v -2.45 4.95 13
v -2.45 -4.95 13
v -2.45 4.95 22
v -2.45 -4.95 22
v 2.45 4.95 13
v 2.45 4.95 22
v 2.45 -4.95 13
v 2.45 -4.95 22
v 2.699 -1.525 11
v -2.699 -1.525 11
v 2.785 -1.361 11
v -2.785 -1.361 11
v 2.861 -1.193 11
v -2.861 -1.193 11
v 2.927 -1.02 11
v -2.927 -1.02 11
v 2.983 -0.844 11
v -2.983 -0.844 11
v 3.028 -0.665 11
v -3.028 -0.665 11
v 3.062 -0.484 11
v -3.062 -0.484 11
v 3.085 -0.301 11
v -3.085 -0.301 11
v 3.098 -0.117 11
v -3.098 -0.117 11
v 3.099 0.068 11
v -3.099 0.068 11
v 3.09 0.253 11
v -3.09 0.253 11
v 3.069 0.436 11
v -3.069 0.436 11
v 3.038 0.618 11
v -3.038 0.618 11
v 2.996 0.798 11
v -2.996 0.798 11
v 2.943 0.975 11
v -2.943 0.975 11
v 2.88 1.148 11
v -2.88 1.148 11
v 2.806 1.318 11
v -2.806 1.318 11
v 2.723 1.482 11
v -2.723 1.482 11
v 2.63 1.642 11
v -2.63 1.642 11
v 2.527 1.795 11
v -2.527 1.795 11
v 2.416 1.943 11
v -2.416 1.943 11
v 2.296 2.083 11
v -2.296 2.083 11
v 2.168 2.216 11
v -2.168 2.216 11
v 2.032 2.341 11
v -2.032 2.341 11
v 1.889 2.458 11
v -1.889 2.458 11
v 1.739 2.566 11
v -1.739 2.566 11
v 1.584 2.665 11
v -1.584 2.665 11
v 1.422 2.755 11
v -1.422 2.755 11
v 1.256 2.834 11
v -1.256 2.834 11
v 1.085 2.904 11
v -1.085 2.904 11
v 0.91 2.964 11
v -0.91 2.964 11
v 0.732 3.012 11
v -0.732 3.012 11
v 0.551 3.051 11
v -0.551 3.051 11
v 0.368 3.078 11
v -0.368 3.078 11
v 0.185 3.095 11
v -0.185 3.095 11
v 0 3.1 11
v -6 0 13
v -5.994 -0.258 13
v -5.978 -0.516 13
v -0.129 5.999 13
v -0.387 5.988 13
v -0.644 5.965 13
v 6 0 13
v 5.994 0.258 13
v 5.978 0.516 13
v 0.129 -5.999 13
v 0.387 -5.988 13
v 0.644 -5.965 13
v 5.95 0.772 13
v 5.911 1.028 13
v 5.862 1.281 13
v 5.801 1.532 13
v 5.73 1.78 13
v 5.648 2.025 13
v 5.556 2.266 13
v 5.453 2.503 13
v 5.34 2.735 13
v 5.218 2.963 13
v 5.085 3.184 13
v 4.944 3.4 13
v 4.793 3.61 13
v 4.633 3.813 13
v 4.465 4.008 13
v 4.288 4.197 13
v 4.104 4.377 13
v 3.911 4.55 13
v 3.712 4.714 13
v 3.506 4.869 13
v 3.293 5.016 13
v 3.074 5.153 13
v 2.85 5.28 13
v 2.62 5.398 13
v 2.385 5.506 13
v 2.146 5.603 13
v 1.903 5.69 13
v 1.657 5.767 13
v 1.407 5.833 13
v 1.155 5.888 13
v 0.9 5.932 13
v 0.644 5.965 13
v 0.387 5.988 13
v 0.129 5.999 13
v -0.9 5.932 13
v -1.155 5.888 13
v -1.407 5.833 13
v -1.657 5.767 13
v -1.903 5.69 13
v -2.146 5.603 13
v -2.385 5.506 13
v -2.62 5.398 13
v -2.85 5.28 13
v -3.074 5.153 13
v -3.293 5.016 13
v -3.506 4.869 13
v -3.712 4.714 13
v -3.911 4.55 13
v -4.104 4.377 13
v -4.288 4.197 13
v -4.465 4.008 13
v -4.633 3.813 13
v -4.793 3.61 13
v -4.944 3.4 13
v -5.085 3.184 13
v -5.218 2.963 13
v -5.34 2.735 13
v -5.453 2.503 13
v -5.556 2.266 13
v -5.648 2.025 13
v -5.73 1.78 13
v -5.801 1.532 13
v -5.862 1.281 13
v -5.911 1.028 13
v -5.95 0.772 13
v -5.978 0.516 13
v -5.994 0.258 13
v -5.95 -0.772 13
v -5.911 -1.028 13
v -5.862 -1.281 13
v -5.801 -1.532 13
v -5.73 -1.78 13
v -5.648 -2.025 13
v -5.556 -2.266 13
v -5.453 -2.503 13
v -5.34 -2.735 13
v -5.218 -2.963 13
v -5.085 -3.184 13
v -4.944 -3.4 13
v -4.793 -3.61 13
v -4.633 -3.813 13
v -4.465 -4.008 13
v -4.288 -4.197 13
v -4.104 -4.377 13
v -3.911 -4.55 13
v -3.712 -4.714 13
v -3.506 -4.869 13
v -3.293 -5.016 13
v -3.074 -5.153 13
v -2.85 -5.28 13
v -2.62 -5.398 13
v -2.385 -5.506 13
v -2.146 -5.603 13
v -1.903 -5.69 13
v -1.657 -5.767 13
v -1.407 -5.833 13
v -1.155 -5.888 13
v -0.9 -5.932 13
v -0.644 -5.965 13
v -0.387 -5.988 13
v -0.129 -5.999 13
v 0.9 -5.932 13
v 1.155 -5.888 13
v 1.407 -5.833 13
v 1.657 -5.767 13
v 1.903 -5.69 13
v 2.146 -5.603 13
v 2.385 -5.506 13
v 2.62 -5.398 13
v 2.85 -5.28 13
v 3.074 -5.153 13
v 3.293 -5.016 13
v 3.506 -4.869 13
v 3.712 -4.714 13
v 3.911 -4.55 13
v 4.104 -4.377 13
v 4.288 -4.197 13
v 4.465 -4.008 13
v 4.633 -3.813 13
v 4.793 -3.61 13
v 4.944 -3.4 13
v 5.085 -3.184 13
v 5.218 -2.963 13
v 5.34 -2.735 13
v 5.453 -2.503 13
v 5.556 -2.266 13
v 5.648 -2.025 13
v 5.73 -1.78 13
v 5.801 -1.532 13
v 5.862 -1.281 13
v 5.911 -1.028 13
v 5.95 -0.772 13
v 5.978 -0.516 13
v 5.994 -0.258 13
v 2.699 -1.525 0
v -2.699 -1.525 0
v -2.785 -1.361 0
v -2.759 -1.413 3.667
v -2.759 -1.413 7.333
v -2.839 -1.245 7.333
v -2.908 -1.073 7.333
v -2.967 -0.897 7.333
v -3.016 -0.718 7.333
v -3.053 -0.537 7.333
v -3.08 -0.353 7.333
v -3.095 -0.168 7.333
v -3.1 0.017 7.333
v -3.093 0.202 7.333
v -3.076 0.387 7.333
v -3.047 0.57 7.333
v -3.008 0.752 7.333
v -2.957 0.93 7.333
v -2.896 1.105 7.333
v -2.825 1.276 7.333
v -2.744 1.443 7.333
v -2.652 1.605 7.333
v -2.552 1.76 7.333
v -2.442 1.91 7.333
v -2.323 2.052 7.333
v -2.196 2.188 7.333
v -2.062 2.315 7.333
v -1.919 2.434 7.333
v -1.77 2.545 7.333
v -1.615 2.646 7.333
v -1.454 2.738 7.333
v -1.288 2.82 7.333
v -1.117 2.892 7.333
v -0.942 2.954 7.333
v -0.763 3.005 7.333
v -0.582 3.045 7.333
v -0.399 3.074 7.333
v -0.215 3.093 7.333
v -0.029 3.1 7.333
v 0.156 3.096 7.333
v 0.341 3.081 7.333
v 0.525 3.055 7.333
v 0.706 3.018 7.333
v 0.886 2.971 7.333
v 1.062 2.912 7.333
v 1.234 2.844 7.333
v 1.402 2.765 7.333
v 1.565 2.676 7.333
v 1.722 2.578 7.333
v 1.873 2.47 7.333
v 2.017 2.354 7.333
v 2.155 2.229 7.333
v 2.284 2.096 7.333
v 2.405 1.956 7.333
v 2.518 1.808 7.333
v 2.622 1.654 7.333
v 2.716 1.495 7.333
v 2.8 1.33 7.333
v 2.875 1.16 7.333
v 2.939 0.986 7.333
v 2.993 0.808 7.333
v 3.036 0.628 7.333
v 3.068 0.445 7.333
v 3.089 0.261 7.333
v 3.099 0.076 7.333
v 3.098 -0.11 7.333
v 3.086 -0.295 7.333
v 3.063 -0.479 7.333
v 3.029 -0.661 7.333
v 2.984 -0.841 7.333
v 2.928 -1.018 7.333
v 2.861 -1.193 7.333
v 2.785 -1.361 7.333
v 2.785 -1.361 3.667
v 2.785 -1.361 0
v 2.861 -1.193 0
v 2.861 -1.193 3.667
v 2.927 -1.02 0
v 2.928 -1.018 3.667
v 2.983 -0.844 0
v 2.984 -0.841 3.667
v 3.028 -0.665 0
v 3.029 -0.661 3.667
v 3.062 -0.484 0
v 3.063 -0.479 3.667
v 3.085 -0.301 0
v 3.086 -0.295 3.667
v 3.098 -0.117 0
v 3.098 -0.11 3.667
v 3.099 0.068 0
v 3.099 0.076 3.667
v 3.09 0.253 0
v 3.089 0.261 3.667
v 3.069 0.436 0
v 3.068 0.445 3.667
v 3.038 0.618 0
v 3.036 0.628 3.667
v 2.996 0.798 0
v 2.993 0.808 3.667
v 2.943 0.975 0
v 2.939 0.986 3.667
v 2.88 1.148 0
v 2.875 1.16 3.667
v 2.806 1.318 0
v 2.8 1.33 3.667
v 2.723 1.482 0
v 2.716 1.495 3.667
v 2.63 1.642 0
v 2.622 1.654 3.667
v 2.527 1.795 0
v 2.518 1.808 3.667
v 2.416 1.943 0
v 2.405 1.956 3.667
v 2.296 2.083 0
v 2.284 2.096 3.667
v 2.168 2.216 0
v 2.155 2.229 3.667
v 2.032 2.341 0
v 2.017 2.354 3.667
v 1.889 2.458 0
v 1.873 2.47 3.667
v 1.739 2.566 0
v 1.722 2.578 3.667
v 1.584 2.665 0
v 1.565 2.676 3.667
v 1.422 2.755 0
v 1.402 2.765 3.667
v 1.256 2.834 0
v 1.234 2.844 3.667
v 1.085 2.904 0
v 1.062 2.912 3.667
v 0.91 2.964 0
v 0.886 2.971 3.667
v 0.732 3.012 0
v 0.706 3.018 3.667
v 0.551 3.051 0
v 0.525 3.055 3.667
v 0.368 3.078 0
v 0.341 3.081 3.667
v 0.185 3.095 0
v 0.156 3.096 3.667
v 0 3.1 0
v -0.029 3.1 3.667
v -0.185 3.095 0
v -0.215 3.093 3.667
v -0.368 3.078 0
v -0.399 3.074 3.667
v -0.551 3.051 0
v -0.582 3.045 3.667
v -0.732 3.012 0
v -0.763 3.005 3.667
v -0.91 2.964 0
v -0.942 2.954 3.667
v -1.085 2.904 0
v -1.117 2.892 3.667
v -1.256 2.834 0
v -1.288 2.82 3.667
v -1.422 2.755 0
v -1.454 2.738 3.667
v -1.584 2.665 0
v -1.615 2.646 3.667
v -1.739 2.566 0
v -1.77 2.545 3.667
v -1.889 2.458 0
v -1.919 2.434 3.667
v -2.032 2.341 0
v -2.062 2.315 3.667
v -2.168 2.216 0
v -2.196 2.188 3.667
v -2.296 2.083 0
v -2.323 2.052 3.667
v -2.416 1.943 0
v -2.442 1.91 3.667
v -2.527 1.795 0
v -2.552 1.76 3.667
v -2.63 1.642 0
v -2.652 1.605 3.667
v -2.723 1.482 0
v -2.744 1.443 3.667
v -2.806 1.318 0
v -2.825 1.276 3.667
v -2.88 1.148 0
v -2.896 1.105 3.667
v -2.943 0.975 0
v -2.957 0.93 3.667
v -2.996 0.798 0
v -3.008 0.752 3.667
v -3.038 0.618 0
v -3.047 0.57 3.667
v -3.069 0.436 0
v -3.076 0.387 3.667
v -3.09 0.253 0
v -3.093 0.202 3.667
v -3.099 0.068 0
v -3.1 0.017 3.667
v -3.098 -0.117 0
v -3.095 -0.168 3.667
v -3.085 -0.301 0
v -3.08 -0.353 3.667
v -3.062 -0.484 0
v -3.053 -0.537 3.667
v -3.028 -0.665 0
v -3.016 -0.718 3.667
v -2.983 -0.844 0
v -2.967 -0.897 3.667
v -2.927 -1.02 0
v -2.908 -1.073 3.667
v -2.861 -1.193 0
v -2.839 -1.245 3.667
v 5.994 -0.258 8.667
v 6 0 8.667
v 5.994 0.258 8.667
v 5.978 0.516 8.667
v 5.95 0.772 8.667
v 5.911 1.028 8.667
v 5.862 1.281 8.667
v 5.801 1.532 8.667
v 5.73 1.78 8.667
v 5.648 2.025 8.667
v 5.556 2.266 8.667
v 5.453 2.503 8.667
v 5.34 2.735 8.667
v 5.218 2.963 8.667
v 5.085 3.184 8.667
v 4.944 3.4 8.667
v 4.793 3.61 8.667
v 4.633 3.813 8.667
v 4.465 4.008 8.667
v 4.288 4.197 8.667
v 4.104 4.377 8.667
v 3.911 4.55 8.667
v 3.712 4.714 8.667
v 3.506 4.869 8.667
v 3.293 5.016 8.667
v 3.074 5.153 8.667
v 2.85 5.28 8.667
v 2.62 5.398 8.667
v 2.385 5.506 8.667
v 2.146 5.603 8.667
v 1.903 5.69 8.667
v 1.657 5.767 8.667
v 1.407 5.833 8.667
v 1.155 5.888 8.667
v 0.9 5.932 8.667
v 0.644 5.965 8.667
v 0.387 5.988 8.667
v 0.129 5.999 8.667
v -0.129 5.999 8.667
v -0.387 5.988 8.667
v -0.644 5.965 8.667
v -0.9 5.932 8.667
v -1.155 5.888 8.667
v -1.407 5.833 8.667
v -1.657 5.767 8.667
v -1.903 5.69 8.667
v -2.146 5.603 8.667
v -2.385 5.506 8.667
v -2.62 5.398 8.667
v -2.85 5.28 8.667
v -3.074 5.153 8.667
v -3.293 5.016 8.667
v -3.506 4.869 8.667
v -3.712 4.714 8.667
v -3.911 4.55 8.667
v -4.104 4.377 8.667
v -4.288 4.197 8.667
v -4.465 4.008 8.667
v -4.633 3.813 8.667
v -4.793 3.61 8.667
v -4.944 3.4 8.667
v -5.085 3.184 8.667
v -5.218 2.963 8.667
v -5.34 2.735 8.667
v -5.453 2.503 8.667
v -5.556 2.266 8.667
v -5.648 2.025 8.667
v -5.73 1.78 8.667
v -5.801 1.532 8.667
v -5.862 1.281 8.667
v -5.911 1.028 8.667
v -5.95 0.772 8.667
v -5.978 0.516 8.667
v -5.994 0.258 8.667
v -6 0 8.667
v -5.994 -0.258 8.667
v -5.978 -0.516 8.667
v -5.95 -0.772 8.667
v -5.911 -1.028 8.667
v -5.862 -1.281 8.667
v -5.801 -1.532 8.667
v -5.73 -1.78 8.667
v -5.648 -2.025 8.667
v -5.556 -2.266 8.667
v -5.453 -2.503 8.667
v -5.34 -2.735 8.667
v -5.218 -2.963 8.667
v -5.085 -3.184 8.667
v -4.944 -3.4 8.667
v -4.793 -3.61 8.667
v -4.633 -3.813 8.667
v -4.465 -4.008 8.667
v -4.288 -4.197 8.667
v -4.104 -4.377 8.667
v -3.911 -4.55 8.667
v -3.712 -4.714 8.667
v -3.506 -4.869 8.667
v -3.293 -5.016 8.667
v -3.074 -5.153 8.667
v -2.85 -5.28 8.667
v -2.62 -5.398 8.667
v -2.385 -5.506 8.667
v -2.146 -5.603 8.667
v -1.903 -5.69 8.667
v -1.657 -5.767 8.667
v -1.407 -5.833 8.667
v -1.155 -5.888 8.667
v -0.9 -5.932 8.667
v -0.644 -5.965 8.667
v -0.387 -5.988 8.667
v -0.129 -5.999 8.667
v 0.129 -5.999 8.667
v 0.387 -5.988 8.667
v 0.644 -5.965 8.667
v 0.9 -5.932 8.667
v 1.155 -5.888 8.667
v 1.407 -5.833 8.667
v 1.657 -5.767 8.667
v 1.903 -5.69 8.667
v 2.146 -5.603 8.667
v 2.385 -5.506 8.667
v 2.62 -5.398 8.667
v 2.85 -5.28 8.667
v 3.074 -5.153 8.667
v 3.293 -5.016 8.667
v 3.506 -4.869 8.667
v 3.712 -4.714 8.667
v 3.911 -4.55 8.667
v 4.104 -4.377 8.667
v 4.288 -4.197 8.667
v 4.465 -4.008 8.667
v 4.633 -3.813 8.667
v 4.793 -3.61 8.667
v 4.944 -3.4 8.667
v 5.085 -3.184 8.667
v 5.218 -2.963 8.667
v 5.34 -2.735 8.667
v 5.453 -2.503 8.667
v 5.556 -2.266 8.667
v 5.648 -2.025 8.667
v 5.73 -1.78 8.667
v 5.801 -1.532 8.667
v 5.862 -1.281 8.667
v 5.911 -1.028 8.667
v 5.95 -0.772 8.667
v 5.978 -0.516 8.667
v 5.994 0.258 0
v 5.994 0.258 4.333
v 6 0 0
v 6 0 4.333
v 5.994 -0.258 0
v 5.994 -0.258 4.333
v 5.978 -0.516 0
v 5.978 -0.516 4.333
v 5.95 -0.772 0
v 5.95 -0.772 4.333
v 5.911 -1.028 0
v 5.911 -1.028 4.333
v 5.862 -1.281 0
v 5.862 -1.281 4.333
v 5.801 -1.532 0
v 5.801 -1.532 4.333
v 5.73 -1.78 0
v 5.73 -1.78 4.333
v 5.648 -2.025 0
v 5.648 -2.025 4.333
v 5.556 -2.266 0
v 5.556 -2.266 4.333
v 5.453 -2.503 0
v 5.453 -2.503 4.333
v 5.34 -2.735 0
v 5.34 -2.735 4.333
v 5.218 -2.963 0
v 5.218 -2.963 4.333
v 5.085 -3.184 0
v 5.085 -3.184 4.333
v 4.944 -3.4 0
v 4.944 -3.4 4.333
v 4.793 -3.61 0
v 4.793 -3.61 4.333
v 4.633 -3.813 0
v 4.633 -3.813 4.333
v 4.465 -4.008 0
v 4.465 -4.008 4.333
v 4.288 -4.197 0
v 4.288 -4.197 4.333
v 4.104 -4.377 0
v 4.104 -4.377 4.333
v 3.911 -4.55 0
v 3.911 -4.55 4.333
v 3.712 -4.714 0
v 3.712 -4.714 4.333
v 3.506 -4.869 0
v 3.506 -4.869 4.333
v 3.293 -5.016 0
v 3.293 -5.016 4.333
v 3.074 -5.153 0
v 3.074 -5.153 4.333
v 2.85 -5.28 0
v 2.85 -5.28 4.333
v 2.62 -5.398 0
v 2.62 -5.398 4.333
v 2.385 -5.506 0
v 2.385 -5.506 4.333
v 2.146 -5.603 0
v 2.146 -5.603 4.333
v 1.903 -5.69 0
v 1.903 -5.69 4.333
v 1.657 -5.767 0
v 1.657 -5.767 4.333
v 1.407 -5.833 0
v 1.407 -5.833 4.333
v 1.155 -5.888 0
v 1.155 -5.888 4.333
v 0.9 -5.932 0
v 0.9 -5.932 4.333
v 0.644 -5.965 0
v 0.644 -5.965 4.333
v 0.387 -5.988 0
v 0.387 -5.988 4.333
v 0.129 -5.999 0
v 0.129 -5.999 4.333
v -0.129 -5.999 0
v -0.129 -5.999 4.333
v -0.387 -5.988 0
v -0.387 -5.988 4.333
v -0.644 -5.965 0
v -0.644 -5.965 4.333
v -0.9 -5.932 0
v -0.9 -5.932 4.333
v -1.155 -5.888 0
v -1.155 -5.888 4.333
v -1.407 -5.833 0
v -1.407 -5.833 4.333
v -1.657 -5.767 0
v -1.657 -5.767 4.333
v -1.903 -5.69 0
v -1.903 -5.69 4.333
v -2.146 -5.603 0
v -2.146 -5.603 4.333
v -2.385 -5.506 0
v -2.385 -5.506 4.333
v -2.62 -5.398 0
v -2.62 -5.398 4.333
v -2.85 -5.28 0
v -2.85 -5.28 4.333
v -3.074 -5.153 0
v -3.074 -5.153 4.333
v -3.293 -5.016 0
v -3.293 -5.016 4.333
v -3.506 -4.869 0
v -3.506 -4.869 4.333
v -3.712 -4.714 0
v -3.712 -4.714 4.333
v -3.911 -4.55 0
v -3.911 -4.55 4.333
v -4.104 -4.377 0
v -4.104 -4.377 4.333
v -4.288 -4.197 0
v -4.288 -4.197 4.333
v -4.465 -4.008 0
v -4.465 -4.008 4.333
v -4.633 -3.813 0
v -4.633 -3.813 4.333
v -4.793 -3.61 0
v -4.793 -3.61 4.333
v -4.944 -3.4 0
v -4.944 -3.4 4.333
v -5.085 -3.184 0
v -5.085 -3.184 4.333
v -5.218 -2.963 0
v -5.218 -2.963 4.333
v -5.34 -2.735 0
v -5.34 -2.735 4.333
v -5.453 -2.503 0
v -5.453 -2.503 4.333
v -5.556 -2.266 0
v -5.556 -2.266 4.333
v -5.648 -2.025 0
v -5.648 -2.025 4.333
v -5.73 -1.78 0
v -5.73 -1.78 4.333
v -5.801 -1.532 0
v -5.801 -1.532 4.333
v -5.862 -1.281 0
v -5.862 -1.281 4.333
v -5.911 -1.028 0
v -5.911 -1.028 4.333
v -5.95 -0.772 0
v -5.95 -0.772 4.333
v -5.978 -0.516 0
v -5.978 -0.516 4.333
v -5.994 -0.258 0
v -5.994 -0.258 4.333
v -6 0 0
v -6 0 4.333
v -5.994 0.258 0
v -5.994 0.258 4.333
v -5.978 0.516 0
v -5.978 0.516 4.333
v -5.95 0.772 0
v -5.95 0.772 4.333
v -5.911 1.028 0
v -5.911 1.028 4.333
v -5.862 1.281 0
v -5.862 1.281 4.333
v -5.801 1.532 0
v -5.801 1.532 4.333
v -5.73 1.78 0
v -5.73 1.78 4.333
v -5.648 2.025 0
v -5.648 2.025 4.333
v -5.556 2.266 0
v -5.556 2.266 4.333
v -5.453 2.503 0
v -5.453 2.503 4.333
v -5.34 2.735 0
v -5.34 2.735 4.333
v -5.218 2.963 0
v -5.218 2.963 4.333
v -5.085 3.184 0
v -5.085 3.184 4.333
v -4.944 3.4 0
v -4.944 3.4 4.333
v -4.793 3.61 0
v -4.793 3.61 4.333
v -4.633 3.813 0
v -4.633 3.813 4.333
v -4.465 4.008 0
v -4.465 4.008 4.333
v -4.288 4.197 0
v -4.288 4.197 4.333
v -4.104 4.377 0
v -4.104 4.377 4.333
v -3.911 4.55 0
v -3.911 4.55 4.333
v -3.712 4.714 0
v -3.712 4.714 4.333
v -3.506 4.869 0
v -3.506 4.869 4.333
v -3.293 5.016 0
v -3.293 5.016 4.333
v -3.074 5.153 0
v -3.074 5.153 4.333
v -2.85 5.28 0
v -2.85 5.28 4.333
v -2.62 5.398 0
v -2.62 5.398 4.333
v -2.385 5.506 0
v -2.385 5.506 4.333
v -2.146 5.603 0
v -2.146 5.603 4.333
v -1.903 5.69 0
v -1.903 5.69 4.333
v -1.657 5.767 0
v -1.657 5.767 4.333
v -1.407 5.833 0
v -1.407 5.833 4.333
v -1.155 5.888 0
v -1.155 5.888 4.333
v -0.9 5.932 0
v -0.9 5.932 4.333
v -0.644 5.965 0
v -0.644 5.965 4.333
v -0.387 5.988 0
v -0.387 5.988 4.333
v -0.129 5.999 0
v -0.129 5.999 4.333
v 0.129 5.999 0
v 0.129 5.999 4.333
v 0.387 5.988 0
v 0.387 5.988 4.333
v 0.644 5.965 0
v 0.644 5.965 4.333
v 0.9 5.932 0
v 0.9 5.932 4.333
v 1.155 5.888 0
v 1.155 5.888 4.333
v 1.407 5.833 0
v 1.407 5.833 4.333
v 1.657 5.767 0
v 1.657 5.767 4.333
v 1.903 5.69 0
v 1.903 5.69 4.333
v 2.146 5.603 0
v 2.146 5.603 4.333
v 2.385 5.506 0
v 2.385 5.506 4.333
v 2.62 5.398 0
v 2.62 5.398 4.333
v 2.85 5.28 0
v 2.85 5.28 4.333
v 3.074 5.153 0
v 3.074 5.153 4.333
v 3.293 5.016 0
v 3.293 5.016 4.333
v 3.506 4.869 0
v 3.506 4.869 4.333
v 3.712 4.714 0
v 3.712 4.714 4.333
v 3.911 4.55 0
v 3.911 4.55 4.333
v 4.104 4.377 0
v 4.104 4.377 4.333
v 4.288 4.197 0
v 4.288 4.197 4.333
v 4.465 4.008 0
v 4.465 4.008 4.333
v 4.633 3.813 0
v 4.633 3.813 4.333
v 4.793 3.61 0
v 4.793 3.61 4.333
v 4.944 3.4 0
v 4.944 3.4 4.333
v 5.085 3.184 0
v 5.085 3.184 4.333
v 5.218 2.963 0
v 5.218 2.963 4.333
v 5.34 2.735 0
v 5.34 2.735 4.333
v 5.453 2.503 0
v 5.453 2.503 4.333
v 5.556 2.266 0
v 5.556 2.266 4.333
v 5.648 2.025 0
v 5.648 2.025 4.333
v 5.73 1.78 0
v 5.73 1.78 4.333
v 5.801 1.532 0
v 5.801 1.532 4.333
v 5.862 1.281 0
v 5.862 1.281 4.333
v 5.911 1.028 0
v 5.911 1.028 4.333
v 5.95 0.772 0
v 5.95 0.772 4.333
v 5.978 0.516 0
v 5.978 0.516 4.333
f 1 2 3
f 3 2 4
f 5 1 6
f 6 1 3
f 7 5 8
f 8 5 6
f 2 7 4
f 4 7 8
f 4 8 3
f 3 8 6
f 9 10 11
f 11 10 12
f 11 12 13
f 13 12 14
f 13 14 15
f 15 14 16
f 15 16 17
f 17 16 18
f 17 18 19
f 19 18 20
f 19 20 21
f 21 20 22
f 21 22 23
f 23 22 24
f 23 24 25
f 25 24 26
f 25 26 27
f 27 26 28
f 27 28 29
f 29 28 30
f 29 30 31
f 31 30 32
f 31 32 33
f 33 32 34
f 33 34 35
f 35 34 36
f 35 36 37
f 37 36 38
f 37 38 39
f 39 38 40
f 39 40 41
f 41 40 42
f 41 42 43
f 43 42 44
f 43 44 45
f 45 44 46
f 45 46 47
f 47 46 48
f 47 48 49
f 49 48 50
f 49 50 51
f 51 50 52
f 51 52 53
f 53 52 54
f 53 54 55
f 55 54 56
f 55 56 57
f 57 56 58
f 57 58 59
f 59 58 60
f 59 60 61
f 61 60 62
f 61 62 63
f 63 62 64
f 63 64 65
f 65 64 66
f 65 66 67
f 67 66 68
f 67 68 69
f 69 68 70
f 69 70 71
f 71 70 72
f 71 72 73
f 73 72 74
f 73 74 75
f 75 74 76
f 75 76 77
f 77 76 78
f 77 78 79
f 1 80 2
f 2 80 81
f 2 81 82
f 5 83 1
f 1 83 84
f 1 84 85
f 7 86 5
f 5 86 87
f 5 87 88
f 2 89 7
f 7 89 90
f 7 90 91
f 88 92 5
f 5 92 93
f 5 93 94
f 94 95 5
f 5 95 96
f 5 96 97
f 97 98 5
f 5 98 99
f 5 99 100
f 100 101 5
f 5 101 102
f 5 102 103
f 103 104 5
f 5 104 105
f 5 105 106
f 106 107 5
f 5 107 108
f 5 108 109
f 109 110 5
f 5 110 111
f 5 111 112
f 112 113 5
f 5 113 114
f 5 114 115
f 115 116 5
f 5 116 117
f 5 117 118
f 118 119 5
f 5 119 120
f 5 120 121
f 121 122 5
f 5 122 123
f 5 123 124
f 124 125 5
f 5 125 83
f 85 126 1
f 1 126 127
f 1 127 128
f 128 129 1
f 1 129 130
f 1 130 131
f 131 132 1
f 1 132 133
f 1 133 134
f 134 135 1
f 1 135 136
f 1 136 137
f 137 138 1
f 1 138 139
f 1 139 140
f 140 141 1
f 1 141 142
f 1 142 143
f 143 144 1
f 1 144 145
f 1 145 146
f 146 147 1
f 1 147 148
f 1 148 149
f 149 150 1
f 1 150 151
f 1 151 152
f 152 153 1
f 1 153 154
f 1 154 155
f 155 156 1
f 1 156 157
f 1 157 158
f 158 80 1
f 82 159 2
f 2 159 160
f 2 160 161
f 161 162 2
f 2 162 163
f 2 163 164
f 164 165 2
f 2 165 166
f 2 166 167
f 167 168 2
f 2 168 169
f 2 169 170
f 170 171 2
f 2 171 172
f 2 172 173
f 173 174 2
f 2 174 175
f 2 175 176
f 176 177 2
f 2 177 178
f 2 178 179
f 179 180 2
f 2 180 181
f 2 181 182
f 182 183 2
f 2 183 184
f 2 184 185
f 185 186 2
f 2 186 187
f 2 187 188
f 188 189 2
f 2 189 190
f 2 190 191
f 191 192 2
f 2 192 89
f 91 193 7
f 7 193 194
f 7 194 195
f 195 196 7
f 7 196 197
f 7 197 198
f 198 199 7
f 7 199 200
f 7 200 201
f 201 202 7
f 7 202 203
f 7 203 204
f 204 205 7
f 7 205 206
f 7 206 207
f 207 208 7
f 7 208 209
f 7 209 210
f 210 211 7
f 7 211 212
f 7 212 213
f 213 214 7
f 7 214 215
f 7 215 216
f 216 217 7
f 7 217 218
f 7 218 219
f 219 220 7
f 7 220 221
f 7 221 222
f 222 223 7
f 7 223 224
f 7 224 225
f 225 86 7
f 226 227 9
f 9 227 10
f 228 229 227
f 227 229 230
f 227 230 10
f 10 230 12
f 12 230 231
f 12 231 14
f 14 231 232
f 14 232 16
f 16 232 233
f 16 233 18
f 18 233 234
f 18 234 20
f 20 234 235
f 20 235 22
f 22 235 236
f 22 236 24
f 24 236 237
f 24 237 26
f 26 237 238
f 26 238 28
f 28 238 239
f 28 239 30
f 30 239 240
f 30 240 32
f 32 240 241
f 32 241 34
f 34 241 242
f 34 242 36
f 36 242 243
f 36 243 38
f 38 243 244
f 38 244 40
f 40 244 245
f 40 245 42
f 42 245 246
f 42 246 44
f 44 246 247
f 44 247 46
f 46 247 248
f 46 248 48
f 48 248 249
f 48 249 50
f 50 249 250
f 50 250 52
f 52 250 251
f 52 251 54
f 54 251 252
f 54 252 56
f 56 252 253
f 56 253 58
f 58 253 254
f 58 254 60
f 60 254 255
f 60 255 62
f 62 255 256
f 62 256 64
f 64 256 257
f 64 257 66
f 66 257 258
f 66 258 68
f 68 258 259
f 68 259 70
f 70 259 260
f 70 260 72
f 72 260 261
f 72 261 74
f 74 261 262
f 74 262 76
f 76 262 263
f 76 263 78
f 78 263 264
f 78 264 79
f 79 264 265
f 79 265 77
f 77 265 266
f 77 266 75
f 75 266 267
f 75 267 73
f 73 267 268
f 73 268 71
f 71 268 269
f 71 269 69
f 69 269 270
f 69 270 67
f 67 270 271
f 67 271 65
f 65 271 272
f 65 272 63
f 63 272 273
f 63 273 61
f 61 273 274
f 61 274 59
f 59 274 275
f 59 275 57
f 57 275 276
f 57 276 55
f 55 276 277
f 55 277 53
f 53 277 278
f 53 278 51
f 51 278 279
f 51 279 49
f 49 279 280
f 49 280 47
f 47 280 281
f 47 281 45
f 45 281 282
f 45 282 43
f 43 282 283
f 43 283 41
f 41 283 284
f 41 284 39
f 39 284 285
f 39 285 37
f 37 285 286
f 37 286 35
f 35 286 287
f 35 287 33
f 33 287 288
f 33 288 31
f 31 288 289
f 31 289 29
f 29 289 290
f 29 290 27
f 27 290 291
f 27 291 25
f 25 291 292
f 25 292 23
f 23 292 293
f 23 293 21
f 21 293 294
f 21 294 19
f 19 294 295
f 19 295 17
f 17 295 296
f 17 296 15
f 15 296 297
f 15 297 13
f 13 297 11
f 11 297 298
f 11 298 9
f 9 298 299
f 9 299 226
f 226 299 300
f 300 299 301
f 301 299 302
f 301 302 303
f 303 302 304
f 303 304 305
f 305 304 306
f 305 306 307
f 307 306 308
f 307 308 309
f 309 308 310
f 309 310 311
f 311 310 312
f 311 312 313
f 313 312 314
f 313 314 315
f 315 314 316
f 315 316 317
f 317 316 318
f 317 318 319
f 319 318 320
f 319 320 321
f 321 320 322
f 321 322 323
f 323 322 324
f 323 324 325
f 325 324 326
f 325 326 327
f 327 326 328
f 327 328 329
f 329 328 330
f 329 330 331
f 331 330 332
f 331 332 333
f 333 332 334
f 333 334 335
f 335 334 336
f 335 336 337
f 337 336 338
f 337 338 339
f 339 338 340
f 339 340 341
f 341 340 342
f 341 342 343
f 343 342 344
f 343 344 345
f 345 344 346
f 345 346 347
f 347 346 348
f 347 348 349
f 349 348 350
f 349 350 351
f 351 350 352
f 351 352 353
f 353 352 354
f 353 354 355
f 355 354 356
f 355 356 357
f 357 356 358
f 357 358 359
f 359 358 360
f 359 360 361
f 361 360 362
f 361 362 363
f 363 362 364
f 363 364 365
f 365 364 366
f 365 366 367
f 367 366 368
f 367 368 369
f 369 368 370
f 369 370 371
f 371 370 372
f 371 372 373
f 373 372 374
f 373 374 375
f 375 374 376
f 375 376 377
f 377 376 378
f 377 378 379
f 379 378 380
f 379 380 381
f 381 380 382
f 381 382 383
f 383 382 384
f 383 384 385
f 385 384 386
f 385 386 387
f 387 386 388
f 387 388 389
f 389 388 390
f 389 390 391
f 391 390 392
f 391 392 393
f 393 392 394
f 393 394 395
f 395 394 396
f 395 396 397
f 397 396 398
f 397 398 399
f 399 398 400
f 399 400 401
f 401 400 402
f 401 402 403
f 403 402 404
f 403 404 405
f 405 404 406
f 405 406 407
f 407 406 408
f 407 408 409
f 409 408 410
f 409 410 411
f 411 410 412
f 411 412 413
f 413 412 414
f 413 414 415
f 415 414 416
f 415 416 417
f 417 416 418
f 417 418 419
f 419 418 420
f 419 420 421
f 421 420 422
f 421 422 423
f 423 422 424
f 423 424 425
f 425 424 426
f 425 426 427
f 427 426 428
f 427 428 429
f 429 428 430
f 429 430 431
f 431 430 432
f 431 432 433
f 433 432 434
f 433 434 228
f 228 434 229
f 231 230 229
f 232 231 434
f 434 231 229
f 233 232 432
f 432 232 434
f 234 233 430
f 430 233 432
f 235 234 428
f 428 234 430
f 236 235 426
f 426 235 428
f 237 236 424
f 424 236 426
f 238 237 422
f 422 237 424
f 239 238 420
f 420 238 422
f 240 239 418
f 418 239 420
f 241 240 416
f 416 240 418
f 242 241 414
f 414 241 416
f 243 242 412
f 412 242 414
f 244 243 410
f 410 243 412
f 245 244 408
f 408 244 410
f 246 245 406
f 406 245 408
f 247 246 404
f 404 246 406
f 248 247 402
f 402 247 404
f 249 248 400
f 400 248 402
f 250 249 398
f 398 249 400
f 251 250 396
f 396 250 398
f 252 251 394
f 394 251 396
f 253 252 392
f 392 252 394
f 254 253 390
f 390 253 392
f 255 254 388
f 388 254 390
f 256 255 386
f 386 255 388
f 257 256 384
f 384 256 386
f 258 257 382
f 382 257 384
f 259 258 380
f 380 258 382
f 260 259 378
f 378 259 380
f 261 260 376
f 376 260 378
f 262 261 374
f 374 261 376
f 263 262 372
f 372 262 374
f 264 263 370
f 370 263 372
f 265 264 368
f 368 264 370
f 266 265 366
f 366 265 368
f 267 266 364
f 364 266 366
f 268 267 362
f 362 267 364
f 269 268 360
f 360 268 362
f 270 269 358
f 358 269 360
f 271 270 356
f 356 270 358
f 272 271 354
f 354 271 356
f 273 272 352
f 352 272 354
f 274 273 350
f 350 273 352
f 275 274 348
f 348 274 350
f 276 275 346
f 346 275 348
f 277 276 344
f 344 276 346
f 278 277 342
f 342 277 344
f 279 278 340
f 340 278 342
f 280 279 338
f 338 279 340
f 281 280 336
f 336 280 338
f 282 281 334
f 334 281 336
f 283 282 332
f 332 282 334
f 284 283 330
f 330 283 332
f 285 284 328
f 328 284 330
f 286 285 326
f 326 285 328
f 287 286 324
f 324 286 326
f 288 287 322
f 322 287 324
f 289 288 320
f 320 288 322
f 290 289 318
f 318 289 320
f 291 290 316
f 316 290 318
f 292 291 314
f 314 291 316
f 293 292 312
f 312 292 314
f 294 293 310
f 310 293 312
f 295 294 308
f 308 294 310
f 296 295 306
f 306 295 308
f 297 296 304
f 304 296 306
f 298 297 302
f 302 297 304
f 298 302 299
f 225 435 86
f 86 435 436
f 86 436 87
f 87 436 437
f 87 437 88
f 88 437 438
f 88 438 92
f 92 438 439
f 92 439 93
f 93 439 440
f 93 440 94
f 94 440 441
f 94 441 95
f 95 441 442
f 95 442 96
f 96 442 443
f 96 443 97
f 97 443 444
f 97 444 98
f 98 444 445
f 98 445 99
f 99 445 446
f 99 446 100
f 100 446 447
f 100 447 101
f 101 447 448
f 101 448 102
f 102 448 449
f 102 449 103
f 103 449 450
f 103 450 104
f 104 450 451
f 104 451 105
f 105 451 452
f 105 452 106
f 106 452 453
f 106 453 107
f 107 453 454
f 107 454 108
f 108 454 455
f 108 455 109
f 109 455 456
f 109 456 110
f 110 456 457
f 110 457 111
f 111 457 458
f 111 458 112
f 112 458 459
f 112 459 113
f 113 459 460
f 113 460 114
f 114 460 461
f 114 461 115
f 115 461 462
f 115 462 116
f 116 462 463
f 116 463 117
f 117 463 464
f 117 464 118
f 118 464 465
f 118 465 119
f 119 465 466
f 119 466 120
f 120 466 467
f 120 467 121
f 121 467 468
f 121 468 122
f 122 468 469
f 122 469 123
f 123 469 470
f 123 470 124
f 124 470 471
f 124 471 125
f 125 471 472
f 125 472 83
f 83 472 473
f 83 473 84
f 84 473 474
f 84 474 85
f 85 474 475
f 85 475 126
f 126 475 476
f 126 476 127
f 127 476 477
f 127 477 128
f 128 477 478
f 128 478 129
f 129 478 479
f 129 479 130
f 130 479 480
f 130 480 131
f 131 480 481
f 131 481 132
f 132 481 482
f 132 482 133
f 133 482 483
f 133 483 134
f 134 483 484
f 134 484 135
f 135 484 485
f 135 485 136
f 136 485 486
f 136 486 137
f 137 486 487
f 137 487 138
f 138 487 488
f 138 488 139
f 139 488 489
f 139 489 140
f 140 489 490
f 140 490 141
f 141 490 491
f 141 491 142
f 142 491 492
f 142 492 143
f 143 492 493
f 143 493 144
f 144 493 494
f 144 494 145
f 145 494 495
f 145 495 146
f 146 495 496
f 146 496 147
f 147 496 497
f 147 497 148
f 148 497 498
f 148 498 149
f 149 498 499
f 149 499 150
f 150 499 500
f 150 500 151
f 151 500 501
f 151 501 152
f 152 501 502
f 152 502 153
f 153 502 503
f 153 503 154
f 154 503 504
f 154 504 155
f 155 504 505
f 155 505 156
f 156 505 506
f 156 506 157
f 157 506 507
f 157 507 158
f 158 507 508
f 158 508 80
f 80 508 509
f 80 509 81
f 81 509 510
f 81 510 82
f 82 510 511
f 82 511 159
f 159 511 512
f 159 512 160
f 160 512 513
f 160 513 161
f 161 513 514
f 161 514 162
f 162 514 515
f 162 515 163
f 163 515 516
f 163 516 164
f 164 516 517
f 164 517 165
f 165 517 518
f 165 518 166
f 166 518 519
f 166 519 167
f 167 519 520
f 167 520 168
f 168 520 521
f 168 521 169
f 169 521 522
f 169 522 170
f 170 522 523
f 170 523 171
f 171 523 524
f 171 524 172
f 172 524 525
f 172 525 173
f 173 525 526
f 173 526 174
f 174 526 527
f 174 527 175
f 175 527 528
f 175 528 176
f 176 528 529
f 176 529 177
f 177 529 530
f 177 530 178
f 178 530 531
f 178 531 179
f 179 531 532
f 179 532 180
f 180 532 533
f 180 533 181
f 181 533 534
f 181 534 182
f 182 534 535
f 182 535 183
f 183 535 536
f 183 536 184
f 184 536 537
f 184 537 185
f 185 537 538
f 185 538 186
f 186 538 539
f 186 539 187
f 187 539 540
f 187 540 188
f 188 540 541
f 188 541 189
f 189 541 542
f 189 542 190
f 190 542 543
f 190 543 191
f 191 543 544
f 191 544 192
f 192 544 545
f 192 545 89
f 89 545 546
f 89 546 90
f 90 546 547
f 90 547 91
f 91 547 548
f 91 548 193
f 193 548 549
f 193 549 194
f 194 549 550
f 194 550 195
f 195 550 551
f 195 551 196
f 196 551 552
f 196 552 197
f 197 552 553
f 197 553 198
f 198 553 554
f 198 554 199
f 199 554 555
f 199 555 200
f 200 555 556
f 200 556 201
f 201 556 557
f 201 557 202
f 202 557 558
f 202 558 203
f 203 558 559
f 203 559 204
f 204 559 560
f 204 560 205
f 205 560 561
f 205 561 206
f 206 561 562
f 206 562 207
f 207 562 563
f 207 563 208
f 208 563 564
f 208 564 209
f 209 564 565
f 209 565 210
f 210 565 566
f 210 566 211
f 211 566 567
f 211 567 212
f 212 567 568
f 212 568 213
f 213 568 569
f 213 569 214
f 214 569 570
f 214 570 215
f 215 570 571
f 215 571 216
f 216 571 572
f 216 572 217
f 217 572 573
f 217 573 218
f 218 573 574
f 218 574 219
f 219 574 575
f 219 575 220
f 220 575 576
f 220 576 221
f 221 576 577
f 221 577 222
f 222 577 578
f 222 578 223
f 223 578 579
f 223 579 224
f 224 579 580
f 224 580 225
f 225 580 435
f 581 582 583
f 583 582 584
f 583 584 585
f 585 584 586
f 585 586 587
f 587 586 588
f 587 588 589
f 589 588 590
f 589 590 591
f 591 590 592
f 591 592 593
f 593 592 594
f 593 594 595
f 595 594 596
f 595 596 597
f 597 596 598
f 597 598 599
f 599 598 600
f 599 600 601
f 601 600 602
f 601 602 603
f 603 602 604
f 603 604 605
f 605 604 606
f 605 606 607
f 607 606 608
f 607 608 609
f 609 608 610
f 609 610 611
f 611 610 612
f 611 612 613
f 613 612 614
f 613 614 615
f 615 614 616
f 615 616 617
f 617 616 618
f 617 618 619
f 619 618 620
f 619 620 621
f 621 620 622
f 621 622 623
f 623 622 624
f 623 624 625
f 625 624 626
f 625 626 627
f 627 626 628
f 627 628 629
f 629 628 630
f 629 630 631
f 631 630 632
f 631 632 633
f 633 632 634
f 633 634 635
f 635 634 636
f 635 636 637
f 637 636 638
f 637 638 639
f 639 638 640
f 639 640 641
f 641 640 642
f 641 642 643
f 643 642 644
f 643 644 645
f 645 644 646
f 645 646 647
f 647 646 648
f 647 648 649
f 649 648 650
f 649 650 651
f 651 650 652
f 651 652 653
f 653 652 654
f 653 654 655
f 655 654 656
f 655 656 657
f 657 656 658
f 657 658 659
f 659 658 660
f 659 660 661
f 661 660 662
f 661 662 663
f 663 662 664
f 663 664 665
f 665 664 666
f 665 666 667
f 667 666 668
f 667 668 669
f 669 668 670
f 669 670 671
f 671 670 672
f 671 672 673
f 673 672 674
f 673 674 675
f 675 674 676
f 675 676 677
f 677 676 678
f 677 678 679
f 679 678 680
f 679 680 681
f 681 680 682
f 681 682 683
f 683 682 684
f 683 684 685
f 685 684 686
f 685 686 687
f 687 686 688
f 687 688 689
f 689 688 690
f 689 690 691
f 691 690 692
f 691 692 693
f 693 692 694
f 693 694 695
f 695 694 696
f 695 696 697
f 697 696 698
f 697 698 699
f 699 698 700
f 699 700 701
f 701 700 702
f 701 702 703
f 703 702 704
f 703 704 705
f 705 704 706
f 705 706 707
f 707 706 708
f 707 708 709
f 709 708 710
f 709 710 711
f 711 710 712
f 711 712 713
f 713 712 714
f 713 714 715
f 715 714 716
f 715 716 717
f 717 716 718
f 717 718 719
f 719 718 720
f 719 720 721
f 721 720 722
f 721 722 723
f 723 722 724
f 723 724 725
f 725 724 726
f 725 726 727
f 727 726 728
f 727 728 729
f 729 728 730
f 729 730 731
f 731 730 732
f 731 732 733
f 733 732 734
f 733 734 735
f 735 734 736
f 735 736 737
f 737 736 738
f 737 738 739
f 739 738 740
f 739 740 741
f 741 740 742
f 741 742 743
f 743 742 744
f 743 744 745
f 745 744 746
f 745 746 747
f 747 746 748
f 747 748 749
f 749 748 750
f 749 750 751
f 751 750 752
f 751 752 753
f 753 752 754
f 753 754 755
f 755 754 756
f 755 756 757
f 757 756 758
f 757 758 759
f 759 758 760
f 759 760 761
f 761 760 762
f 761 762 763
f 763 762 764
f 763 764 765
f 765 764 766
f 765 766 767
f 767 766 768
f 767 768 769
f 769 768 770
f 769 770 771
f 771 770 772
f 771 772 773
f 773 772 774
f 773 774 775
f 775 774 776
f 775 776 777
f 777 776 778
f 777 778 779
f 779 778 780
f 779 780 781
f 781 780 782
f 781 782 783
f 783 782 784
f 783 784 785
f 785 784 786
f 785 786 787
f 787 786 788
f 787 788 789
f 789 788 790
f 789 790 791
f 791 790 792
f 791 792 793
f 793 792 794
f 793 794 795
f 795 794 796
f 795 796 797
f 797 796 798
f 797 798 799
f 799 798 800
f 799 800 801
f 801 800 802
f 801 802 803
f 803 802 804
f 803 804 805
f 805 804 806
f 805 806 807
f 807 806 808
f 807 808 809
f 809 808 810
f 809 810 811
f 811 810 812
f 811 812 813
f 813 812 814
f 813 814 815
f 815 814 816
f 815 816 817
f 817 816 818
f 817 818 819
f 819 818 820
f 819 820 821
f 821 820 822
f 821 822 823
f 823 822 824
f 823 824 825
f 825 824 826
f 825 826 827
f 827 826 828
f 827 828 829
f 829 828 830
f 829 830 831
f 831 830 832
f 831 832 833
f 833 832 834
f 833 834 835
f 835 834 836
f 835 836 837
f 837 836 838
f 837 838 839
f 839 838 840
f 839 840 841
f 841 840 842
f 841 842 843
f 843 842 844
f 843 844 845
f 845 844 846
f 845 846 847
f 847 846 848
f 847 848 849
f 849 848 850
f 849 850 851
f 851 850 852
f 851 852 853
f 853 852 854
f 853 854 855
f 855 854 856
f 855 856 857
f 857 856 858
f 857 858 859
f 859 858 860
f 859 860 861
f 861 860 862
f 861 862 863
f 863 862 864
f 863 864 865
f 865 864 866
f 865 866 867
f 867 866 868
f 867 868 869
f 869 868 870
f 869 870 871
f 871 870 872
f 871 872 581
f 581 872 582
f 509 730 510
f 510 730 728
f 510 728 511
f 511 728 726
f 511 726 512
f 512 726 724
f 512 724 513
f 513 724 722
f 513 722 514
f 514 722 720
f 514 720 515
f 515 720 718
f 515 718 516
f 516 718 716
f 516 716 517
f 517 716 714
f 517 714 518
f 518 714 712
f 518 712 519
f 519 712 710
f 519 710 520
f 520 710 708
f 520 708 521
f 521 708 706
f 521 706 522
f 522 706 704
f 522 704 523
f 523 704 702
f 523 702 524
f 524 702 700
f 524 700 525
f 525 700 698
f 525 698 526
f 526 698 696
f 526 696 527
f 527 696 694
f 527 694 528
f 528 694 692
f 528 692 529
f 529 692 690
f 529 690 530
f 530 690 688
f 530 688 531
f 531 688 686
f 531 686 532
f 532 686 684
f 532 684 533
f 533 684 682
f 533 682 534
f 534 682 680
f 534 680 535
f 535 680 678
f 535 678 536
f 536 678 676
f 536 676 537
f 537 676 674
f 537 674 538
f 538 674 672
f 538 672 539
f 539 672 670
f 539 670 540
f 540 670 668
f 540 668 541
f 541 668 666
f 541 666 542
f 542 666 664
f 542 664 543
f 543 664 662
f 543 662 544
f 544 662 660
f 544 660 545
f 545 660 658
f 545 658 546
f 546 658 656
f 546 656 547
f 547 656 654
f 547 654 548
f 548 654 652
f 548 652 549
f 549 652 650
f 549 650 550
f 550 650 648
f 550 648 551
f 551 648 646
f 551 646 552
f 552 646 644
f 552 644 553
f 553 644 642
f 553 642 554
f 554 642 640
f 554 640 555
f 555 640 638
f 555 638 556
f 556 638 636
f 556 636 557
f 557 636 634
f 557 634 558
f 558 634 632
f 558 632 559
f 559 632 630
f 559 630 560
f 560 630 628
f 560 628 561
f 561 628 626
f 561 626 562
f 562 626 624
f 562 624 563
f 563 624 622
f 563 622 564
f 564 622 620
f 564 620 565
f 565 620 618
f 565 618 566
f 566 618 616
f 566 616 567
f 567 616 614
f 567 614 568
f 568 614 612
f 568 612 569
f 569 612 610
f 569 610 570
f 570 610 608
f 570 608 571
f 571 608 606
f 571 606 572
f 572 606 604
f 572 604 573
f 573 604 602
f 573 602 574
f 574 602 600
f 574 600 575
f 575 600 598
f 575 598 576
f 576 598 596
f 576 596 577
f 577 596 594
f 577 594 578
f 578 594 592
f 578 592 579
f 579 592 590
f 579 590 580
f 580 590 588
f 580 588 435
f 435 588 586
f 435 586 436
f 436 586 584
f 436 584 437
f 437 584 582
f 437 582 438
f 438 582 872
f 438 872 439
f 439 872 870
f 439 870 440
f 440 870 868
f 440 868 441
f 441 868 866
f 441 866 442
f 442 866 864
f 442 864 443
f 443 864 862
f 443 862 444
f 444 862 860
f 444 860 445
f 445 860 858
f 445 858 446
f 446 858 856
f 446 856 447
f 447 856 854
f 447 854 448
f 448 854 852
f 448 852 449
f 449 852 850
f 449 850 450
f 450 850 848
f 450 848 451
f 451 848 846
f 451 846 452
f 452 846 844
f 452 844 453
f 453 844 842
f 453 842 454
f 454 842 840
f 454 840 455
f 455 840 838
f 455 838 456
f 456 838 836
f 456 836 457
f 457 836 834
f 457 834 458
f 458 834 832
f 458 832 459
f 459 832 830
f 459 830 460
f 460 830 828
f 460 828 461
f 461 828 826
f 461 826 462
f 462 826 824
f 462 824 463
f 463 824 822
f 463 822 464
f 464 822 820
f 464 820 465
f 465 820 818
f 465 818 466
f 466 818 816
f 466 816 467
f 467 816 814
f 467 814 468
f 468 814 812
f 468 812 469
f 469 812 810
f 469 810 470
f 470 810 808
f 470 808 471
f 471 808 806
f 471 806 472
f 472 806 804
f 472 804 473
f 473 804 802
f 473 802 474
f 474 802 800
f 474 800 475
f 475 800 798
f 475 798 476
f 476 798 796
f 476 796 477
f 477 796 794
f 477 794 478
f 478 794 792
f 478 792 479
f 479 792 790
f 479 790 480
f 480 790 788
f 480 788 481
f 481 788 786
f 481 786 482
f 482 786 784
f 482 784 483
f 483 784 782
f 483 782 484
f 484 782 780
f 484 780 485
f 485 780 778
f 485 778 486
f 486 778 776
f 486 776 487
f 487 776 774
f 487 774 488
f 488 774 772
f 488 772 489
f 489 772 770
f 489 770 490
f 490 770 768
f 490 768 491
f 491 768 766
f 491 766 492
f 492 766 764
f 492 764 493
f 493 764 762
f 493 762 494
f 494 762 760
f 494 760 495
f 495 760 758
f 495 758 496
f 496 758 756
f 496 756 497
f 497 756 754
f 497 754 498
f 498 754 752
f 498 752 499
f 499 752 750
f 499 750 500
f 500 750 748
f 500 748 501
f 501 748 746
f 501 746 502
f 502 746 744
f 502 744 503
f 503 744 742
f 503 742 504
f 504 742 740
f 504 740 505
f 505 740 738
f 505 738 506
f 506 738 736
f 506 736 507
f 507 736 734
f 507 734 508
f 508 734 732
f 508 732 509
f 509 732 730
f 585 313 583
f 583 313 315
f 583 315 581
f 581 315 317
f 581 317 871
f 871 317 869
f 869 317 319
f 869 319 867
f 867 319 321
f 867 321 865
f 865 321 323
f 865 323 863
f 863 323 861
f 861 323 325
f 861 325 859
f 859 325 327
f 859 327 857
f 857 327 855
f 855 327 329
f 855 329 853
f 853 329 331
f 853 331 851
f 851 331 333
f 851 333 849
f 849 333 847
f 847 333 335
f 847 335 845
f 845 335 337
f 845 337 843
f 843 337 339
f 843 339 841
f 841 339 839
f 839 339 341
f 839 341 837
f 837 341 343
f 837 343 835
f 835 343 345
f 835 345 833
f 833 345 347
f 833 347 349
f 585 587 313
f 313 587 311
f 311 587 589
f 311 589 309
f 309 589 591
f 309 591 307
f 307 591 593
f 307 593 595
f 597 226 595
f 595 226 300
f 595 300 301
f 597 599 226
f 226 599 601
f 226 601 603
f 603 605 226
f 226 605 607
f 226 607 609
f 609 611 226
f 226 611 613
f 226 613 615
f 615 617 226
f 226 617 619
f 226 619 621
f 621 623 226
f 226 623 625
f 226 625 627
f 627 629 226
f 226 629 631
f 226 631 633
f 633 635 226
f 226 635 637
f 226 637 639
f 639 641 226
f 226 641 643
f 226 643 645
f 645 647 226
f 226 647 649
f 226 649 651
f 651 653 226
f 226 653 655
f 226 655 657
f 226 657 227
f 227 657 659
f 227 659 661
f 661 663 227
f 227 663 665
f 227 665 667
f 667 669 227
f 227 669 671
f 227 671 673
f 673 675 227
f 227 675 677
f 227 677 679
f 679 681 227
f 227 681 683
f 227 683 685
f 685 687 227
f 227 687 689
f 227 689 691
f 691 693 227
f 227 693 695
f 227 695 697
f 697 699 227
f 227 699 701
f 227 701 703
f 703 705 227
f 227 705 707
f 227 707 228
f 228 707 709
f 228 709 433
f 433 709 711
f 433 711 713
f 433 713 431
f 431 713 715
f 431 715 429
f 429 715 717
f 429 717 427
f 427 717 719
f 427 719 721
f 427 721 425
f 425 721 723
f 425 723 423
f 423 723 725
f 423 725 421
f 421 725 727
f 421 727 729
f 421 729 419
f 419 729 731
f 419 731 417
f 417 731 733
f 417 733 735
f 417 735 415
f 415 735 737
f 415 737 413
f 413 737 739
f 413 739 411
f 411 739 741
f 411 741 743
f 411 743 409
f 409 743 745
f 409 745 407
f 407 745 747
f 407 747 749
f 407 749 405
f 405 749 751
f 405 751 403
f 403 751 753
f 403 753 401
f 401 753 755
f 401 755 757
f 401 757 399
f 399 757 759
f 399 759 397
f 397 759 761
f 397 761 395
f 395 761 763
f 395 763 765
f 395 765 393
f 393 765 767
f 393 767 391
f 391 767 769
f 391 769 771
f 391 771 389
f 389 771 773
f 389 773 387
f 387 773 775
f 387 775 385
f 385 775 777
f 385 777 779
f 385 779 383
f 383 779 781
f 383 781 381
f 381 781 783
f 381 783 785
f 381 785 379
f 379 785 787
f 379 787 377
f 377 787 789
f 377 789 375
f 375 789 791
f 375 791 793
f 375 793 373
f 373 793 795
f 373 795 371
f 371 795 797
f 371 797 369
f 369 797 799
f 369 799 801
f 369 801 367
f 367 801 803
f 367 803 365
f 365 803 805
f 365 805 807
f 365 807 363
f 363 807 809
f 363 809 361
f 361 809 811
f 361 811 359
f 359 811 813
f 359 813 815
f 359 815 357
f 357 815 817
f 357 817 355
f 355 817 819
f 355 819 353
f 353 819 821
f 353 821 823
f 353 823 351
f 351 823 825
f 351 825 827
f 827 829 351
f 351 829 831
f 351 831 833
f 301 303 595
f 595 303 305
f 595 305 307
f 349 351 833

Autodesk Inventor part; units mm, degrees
ref_plane "YZ Plane" through (0, 0, 0) normal (1, 0, 0) x (0, 1, 0)
ref_plane "XZ Plane" through (0, 0, 0) normal (0, 1, 0) x (-1, 0, 0)
ref_plane "XY Plane" through (0, 0, 0) normal (0, 0, 1) x (1, 0, 0)
sketch "Skizze1" plane through (0, 0, 0) normal (0, 0, 1) x (1, 0, 0)
  line L0 (-2.6992, -1.5246) -> (2.6992, -1.5246)
  circle A0 centre (0, 0) radius 6
  arc A1 (2.6992, -1.5246) -> (-2.6992, -1.5246) centre (0, 0) ccw
  dimension "d3" = 12
  dimension "d6" = 6.2
extrude "Extrusion1" add sketch "Skizze1" along normal blind 11
sketch "Skizze4" plane through (0, 0, 11) normal (0, 0, 1) x (1, 0, 0)
  circle A0 centre (0, 0) radius 6
  dimension "d14" = 12
extrude "Extrusion3" add sketch "Skizze4" along normal blind 2
sketch "Skizze5" plane through (0, 0, 13) normal (0, 0, 1) x (1, 0, 0)
  line L0 (-2.45, 4.95) -> (2.45, 4.95)
  line L1 (2.45, 4.95) -> (2.45, -4.95)
  line L2 (2.45, -4.95) -> (-2.45, -4.95)
  line L3 (-2.45, -4.95) -> (-2.45, 4.95)
  point P0 (0, 0)
  point P1 (0, 0)
  dimension "d17" = 4.9
  dimension "d18" = 9.9
  dimension "d19" = 2.45
  dimension "d20" = 4.95
extrude "Extrusion4" add sketch "Skizze5" along normal blind 9
properties part number "AdapterPoti2"
